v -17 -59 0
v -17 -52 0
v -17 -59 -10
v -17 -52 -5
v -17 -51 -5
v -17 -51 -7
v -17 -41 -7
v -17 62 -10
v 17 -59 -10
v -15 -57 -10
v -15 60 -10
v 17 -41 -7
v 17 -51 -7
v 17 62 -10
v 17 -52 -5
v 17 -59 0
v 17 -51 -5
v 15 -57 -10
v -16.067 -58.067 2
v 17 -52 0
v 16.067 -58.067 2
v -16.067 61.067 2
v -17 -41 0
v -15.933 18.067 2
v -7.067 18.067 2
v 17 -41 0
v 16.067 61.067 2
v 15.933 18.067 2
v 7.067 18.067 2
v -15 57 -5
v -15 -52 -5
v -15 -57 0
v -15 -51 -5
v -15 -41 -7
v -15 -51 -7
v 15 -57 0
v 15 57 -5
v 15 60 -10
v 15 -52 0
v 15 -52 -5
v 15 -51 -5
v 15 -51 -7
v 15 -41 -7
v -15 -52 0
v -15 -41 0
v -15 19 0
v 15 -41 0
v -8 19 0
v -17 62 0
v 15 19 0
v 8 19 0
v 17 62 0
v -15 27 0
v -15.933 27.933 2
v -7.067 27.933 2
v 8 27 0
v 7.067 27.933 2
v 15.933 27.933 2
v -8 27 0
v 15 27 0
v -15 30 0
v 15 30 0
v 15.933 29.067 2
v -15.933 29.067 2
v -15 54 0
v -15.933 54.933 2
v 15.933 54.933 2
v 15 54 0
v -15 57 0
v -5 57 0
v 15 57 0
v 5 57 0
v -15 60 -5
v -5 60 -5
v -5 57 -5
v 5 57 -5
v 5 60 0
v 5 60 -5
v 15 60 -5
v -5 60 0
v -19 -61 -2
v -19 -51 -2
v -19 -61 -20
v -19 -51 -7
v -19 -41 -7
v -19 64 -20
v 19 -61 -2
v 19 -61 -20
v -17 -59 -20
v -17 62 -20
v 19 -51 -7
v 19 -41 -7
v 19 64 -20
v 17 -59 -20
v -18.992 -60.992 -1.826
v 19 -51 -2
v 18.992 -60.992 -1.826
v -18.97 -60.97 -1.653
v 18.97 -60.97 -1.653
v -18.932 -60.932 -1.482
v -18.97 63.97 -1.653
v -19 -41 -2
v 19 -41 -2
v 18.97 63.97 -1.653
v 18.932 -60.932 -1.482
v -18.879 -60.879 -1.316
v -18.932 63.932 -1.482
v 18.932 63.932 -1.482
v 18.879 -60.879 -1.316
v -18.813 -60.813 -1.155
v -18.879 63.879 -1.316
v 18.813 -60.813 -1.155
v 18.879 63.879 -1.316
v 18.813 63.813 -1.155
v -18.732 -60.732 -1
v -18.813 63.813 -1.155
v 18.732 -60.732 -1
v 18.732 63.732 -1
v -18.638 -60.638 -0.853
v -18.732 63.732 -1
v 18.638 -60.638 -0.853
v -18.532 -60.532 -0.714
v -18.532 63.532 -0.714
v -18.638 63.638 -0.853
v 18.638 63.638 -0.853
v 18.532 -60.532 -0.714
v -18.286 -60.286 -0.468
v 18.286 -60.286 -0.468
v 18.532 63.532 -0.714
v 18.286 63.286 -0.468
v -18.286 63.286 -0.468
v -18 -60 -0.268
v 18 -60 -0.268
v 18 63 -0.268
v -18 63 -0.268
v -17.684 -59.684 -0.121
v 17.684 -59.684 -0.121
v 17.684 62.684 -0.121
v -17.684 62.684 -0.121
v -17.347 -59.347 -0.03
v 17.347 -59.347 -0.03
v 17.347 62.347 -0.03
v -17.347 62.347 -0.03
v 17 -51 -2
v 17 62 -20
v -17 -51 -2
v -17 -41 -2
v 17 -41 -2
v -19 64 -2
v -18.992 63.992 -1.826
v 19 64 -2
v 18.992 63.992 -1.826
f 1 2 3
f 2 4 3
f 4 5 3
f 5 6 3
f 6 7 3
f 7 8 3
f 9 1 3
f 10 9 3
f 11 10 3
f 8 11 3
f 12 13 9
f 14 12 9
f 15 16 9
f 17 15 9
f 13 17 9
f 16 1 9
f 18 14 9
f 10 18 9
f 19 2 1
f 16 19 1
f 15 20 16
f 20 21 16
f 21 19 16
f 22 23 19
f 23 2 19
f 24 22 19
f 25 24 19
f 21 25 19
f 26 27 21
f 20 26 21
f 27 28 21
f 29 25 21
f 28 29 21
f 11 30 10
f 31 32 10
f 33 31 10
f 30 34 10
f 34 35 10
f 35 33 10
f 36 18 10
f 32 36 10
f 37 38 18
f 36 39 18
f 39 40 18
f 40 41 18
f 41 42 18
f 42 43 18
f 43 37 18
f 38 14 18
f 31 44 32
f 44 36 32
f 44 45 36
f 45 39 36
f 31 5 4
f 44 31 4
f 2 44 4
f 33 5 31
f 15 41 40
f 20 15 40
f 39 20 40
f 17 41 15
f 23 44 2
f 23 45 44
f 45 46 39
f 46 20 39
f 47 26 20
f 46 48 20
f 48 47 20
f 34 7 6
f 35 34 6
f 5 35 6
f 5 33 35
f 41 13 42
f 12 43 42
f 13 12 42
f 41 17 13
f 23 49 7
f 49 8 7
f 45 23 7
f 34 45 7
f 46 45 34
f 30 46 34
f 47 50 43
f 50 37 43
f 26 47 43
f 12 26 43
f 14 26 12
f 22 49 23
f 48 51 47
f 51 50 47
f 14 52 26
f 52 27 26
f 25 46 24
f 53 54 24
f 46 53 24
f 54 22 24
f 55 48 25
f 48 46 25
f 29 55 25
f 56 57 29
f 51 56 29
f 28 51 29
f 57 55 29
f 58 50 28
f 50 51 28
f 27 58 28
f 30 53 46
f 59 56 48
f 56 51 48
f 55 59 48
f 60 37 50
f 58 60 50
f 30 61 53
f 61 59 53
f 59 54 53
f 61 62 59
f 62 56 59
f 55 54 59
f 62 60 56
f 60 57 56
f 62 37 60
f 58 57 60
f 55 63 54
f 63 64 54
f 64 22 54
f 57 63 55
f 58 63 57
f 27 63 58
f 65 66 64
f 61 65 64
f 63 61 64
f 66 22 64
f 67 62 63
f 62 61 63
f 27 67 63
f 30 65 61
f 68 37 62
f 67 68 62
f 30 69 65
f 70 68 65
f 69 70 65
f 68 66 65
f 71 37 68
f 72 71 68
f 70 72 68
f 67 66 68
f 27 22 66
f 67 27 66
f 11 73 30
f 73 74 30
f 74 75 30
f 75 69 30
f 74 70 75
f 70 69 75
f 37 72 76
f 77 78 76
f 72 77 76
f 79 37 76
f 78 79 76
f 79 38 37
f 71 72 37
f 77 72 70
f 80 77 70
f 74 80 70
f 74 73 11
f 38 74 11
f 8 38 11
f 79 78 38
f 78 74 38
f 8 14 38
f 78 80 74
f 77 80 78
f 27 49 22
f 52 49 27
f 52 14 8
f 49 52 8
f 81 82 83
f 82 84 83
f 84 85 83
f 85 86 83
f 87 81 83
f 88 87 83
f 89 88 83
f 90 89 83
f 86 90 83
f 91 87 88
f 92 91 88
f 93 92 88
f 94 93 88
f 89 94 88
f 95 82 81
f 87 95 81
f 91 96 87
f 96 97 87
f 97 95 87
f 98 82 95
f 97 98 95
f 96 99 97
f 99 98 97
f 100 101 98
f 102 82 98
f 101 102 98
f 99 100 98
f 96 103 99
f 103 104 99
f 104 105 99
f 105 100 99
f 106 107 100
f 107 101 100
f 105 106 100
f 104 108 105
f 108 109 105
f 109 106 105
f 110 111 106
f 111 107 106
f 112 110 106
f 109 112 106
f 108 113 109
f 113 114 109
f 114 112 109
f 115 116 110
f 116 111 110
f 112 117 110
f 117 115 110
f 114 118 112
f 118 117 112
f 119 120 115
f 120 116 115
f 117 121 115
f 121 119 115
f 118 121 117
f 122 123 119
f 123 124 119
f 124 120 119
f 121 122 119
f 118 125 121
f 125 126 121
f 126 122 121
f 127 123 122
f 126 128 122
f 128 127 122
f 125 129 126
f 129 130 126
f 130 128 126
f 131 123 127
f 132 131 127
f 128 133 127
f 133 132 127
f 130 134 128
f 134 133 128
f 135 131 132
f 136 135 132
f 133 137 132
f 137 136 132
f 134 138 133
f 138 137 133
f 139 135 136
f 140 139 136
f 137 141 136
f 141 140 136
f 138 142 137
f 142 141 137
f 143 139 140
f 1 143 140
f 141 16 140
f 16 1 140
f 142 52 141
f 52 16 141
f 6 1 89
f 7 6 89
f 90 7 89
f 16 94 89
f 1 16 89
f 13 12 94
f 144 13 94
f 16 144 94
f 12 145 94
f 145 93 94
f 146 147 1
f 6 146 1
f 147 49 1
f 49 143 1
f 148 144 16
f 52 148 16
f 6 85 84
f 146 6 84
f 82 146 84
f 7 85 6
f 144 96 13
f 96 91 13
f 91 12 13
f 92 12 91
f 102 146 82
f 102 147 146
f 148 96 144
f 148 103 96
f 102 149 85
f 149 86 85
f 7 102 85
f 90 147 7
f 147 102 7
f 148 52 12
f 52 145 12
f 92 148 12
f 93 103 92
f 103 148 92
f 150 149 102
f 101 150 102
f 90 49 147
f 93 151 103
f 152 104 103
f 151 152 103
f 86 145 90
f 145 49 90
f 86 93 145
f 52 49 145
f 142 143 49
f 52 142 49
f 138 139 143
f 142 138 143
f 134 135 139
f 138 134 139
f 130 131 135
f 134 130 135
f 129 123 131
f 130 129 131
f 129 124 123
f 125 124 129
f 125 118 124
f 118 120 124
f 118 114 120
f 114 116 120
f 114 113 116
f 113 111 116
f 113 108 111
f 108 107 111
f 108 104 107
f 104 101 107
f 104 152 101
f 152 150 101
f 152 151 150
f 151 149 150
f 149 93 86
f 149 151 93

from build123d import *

# Parameters (mm, degrees)
ESBO_O2_W                = 34
ESBO_O2_H                = 121
ESBO_O2_W_2              = 7
ESBO_O2_H_2              = 8
RESSALTO_EXTRUS_O1_DEPTH = 2
RESSALTO_EXTRUS_O1_DRAFT = 25
ESBO_O3_W                = 10
ESBO_O3_H                = 3
RESSALTO_EXTRUS_O2_DEPTH = 5
ESBO_O4_W                = 34
ESBO_O4_H                = 121
ESBO_O4_W_2              = 30
ESBO_O4_H_2              = 117
RESSALTO_EXTRUS_O3_DEPTH = 5
ESBO_O5_W                = 38
ESBO_O5_H                = 125
ESBO_O5_W_2              = 34
ESBO_O5_H_2              = 121
RESSALTO_EXTRUS_O5_DEPTH = 20
FILETE1_R                = 2
ESBO_O6_W                = 5
ESBO_O6_H                = 10
CORTE_EXTRUS_O1_DEPTH    = 66


with BuildPart() as part:
    # Esboço2 → Ressalto-extrusão1 (with draft: the straight prism first)
    with BuildSketch(Plane.XY):
        with Locations((0, 1.5)):
            Rectangle(ESBO_O2_W, ESBO_O2_H)
        with Locations((-11.5, 23)):
            Rectangle(ESBO_O2_W_2, ESBO_O2_H_2, mode=Mode.SUBTRACT)
        with Locations((11.5, 23)):
            Rectangle(ESBO_O2_W_2, ESBO_O2_H_2, mode=Mode.SUBTRACT)
        Polygon((8, 30), (-8, 30), (-15, 30), (-15, 54), (15, 54), (15, 30), align=None, mode=Mode.SUBTRACT)
    extrude(amount=RESSALTO_EXTRUS_O1_DEPTH)
    # Ressalto-extrusão1: the draft: its side faces are tilted about the plane it starts from
    ressalto_extrus_o1_sides = [part.faces().sort_by_distance(p)[0] for p in [
        (0, 62, 1),
        (15, 42, 1),
        (0, 54, 1),
        (-15, 42, 1),
        (0, 30, 1),
        (11.5, 19, 1),
        (15, 23, 1),
        (11.5, 27, 1),
        (8, 23, 1),
        (-15, 23, 1),
        (-11.5, 19, 1),
        (-8, 23, 1),
        (-11.5, 27, 1),
        (0, -59, 1),
        (-17, 1.5, 1),
        (17, 1.5, 1),
    ]]
    draft(ressalto_extrus_o1_sides, Plane.XY, RESSALTO_EXTRUS_O1_DRAFT)

    # Esboço3 → Ressalto-extrusão2 (add)
    with BuildSketch(Plane.XY):
        Polygon((15, -41), (17, -41), (17, 62), (-17, 62), (-17, -41), (-15, -41), (-15, 57), (-15, 60), (-5, 60), (5, 60), (15, 60), (15, 57), align=None)
        with Locations((10, 58.5)):
            Rectangle(ESBO_O3_W, ESBO_O3_H)
        with Locations((-10, 58.5)):
            Rectangle(ESBO_O3_W, ESBO_O3_H)
        Polygon((17, -59), (17, -52), (15, -52), (15, -57), (-15, -57), (-15, -52), (-17, -52), (-17, -59), align=None)
    extrude(amount=-RESSALTO_EXTRUS_O2_DEPTH)

    # Esboço4 → Ressalto-extrusão3 (add)
    with BuildSketch(Plane(origin=(0, 0, -5), x_dir=(-1, 0, 0), z_dir=(0, 0, -1))):
        with Locations((0, 1.5)):
            Rectangle(ESBO_O4_W, ESBO_O4_H)
        with Locations((0, 1.5)):
            Rectangle(ESBO_O4_W_2, ESBO_O4_H_2, mode=Mode.SUBTRACT)
    extrude(amount=RESSALTO_EXTRUS_O3_DEPTH)


with BuildPart() as body_2:
    # Esboço5 → Ressalto-extrusão5 (new body)
    with BuildSketch(Plane.XY):
        with Locations((0, 1.5)):
            Rectangle(ESBO_O5_W, ESBO_O5_H)
        with Locations((0, 1.5)):
            Rectangle(ESBO_O5_W_2, ESBO_O5_H_2, mode=Mode.SUBTRACT)
    extrude(amount=-RESSALTO_EXTRUS_O5_DEPTH)

    # Filete1
    filete1_edges = [body_2.edges().sort_by_distance(p)[0] for p in [
        (-19, 1.5, 0),
        (0, 64, 0),
        (19, 1.5, 0),
        (0, -61, 0),
    ]]
    fillet(filete1_edges, radius=FILETE1_R - 0.0001)  # a hair under: the kernel refuses the full size


with BuildPart() as corte_extrus_o1_tool:
    # Esboço6 → Corte-extrusão1 (new, symmetric)
    with BuildSketch(Plane.ZY.offset(19)):
        with Locations((-4.5, -46)):
            Rectangle(ESBO_O6_W, ESBO_O6_H)
    extrude(amount=CORTE_EXTRUS_O1_DEPTH, both=True)


with BuildPart() as part_1:
    add(part.part)

    # Corte-extrusão1: cut by corte_extrus_o1_tool
    add(corte_extrus_o1_tool.part, mode=Mode.SUBTRACT)


with BuildPart() as body_2_1:
    add(body_2.part)

    # Corte-extrusão1: cut by corte_extrus_o1_tool
    add(corte_extrus_o1_tool.part, mode=Mode.SUBTRACT)


solid = Compound([part_1.part, body_2_1.part])
